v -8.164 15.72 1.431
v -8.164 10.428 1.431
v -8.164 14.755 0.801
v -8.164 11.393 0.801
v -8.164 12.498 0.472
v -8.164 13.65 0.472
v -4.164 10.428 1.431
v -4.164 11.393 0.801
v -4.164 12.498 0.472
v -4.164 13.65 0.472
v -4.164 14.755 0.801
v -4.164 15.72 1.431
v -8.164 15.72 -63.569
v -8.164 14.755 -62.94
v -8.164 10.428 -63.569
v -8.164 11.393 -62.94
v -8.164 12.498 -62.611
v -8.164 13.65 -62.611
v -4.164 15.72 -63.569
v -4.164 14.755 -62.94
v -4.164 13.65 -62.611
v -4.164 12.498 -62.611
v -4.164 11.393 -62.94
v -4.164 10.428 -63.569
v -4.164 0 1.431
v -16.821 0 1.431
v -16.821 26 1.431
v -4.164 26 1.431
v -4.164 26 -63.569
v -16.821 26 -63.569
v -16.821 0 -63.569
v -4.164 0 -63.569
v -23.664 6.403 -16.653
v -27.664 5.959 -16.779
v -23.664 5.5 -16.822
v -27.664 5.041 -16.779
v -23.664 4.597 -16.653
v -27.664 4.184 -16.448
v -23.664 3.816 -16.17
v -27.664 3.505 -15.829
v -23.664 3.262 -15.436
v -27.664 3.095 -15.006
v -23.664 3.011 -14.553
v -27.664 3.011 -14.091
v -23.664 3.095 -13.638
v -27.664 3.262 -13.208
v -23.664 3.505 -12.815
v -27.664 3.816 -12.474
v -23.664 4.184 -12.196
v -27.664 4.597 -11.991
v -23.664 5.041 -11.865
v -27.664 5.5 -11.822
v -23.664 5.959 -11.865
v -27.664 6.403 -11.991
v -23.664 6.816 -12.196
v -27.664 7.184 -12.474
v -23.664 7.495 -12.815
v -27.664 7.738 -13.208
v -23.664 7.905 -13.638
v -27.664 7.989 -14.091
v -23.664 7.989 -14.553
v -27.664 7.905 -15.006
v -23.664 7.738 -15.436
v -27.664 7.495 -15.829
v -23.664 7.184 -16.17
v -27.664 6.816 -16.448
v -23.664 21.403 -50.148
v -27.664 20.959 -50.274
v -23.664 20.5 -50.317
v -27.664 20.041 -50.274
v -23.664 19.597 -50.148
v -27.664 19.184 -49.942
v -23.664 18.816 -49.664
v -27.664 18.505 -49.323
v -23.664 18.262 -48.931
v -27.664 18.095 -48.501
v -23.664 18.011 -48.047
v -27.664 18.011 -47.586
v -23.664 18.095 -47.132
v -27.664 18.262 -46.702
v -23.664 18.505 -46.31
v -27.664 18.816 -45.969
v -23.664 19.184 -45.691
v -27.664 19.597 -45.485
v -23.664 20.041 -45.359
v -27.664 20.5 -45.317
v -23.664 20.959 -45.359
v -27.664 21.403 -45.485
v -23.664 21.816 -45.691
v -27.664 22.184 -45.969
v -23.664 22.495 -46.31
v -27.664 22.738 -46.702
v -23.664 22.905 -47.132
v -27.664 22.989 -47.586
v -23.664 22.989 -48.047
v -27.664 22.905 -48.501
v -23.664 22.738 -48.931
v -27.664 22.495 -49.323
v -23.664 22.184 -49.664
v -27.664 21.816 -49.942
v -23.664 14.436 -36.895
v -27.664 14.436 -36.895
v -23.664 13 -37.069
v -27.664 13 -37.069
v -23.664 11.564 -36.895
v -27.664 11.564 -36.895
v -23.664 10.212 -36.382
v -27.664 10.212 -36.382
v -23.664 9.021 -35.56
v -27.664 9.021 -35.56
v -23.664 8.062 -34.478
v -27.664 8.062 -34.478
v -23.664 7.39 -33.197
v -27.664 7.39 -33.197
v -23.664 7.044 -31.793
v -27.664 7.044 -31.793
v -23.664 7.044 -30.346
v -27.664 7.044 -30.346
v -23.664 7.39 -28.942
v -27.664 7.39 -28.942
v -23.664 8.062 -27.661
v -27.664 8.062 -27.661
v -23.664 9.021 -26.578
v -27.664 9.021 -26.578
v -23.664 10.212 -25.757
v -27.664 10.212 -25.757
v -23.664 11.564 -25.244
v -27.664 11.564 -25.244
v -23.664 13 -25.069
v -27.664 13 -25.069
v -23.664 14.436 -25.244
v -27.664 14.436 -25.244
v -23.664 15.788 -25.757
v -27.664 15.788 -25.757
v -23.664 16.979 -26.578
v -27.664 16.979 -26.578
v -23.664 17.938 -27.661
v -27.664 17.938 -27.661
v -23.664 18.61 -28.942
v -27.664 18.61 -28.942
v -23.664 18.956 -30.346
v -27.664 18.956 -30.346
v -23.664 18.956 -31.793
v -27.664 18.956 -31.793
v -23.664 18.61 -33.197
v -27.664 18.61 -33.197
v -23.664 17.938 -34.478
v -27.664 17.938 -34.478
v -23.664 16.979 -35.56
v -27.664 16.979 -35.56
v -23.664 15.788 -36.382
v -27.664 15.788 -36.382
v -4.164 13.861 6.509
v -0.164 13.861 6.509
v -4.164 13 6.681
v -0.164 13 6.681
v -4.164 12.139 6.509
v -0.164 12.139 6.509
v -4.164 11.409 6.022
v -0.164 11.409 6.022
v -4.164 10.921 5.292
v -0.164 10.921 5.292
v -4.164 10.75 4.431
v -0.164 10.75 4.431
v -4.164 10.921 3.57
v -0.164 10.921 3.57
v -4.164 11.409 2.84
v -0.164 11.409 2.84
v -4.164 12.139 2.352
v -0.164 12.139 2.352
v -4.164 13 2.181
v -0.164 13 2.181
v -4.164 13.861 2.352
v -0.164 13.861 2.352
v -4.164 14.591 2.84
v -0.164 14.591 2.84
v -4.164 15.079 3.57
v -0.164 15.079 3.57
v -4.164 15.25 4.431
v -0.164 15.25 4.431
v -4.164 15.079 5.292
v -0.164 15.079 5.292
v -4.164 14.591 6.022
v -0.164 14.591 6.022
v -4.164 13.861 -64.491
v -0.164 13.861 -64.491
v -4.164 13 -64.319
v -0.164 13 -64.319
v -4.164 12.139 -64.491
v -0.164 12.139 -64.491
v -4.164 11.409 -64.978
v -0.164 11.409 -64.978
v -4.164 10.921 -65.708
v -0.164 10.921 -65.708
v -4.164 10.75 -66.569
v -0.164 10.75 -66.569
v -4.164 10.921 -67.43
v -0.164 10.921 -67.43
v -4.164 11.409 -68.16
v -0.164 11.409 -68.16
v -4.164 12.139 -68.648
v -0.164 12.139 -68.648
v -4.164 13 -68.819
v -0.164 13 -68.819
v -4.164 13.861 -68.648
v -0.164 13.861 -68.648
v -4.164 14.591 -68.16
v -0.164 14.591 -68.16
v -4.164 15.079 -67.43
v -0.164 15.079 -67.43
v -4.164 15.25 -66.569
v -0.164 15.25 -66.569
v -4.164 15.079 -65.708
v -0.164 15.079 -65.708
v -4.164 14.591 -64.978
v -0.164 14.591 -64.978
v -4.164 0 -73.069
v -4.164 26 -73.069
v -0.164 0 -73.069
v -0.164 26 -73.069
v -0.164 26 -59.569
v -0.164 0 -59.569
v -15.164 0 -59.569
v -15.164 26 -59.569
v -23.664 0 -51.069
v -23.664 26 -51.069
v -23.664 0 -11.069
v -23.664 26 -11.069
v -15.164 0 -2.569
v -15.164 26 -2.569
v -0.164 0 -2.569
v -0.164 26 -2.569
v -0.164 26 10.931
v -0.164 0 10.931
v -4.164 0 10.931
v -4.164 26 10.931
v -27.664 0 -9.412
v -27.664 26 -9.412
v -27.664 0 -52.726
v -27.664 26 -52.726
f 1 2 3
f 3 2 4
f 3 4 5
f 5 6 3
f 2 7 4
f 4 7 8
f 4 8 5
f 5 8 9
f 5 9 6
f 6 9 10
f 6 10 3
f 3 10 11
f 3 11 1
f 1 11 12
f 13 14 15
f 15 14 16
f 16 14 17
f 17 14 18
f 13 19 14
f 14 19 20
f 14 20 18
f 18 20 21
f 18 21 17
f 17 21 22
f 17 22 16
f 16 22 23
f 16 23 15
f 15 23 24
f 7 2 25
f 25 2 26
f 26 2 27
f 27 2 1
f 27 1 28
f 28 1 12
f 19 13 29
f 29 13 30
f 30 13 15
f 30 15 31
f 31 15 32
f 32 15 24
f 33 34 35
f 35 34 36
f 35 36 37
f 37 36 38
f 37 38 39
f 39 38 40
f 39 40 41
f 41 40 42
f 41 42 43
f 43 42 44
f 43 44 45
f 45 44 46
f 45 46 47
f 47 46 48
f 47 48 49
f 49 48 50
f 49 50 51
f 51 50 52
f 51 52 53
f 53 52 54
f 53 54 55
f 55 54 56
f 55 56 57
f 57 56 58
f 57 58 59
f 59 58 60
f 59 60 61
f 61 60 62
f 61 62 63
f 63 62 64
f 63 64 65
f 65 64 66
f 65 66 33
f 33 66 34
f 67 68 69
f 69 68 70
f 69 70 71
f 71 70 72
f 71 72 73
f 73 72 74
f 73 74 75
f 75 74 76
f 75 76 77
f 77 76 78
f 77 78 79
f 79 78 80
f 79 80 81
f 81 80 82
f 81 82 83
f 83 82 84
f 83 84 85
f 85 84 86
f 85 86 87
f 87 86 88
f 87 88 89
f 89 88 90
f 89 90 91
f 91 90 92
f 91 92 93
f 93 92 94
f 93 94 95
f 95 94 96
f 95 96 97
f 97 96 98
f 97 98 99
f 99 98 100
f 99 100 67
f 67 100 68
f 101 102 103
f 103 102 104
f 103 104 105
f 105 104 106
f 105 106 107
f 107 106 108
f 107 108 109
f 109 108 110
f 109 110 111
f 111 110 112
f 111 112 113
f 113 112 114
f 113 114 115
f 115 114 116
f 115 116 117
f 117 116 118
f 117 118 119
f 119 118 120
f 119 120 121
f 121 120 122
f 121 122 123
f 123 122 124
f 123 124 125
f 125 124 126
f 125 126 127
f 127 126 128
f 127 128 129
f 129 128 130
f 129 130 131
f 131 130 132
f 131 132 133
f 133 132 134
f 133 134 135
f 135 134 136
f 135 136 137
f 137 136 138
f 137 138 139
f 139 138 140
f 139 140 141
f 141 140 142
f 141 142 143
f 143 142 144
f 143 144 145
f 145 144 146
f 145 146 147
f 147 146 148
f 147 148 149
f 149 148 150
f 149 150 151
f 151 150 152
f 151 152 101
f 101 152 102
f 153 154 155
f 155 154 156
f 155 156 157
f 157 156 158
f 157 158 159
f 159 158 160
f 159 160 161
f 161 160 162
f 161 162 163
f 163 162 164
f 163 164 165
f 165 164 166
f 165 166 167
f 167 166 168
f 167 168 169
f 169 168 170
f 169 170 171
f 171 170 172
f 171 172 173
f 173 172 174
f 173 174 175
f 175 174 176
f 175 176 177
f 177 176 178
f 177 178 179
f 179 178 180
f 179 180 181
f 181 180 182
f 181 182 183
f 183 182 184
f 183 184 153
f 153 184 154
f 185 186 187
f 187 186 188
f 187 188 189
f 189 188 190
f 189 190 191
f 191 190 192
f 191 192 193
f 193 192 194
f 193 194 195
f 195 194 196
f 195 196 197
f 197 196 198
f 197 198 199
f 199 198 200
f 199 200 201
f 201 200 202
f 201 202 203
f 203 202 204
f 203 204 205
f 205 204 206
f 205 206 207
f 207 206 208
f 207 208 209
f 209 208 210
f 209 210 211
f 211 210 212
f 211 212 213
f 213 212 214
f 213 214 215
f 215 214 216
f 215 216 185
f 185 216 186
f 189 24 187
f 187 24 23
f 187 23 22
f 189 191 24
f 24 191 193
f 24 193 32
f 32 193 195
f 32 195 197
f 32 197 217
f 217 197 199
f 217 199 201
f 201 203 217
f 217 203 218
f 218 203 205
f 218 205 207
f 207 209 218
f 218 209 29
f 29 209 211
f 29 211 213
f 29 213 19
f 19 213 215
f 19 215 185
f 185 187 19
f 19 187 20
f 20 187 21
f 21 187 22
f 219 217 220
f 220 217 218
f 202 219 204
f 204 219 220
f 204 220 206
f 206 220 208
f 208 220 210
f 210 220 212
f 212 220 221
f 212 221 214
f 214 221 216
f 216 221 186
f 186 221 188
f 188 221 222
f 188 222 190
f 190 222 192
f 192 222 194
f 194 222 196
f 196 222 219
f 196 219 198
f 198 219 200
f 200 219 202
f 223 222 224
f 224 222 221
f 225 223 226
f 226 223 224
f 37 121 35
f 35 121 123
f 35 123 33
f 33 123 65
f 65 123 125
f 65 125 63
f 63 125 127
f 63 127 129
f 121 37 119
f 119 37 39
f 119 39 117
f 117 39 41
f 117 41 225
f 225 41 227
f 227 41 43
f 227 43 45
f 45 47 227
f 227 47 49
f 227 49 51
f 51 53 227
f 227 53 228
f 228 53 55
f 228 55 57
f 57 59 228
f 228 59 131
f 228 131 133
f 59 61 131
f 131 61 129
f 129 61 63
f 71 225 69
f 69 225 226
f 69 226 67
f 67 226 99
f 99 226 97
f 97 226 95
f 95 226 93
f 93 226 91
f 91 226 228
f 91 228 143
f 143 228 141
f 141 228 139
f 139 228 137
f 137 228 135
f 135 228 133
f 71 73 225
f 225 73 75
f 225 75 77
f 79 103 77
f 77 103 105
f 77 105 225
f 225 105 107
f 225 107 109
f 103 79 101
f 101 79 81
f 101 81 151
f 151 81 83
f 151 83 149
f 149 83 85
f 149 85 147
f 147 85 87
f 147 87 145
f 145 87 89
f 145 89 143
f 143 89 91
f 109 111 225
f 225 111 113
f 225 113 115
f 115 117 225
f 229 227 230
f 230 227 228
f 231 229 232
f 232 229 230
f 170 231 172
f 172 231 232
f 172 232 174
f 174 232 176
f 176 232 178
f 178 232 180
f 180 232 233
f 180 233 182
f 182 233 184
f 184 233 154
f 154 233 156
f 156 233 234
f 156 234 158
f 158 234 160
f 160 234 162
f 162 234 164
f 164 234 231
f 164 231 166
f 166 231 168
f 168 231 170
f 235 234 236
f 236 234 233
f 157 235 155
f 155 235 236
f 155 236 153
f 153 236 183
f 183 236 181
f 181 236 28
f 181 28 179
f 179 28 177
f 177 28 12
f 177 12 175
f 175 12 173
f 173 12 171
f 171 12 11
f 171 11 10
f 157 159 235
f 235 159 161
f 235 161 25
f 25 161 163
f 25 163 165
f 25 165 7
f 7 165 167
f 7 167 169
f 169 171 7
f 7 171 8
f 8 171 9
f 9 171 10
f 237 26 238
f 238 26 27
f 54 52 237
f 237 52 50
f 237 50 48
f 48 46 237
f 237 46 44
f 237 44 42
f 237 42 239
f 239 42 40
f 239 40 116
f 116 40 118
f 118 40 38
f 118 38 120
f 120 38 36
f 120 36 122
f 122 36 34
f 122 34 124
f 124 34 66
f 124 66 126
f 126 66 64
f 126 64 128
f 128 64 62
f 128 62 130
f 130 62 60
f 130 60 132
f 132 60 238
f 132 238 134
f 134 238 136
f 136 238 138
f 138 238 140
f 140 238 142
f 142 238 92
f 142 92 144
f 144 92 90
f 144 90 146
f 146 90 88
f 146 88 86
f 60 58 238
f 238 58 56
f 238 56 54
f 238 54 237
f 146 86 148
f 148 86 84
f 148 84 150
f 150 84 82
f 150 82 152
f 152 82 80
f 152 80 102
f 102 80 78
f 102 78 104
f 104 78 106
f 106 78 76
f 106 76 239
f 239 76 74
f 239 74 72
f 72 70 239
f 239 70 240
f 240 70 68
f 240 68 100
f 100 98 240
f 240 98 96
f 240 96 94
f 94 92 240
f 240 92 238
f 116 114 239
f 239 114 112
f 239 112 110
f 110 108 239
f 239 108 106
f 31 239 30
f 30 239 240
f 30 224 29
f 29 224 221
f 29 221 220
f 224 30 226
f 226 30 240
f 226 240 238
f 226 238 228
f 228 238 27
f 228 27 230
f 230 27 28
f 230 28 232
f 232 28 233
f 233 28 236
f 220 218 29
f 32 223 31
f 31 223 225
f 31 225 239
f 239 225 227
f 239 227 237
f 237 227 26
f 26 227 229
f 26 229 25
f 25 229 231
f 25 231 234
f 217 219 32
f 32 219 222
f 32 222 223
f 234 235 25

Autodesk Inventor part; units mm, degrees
ref_plane "YZ Plane" through (0, 0, 0) normal (1, 0, 0) x (0, 1, 0)
ref_plane "XZ Plane" through (0, 0, 0) normal (0, 1, 0) x (-1, 0, 0)
ref_plane "XY Plane" through (0, 0, 0) normal (0, 0, 1) x (1, 0, 0)
sketch "Sketch1" plane through (0, 0, 0) normal (0, 1, 0) x (-1, 0, 0)
  line L0 (0.1637, 10.9307) -> (0.1637, -2.5693)
  line L1 (0.1637, -59.5693) -> (0.1637, -73.0693)
  line L2 (0.1637, -2.5693) -> (15.1637, -2.5693)
  line L3 (0.1637, -59.5693) -> (15.1637, -59.5693)
  line L4 (15.1637, -2.5693) -> (23.6637, -11.0693)
  line L5 (15.1637, -59.5693) -> (23.6637, -51.0693)
  line L6 (23.6637, -11.0693) -> (23.6637, -51.0693)
  line L7 (4.1637, -73.0693) -> (4.1637, -63.5693)
  line L8 (4.1637, -63.5693) -> (16.8205, -63.5693)
  line L9 (16.8205, -63.5693) -> (27.6637, -52.7262)
  line L10 (27.6637, -52.7262) -> (27.6637, -9.4125)
  line L11 (27.6637, -9.4125) -> (16.8205, 1.4307)
  line L12 (16.8205, 1.4307) -> (4.1637, 1.4307)
  line L13 (4.1637, 1.4307) -> (4.1637, 10.9307)
  line L14 (4.1637, 10.9307) -> (0.1637, 10.9307)
  line L15 (4.1637, -73.0693) -> (0.1637, -73.0693)
  point P0 (0, 0)
  point P1 (0.1637, 4.1807)
  dimension "d5" = 13.5
  dimension "d6" = 13.5
  dimension "d98" = 0
  dimension "d100" = 15
  dimension "d101" = 15
  dimension "d103" = 135
  dimension "d104" = 135
  dimension "d106" = 23.5
  dimension "d107" = 4
  dimension "d111" = 84
extrude "Extrusion1" add sketch "Sketch1" along normal blind 26
sketch "Sketch2" plane through (-0.1637, 0, 10.9307) normal (1, 0, 0) x (0, 0, -1)
  circle A0 centre (6.5, 13) radius 2.25
  line L0 (0, 0) -> (0, 26) projected
  line L1 (0, 0) -> (13.5, 0) projected
  circle A1 centre (77.5, 13) radius 2.25
  point P0 (10.9307, 0)
  dimension "d23" = 4.5
  dimension "d29" = 6.5
  dimension "d30" = 13
  dimension "d93" = 71
extrude "Extrusion2" cut sketch "Sketch2" against normal blind 10
sketch "Sketch7" plane through (-27.6637, 0, -52.7262) normal (-1, 0, 0) x (0, 0, 1)
  circle A0 centre (21.6569, 13) radius 6
  line L0 (63.6569, 0) -> (63.6569, 26) projected
  line L1 (0, 0) -> (43.3137, 0) projected
  point P0 (52.7262, 0)
  point P1 (21.6569, 0)
  dimension "d108" = 12
  dimension "d109" = 42
  dimension "d110" = 13
extrude "Extrusion7" cut sketch "Sketch7" against normal blind 10
sketch "Sketch8" plane through (-27.6637, 0, -52.7262) normal (-1, 0, 0) x (0, 0, 1)
  circle A0 centre (21.6569, 13) radius 6 projected
  circle A1 centre (21.6569, 13) radius 18.35
  circle A2 centre (38.4042, 5.5) radius 2.5
  line L0 (0, 0) -> (43.3137, 0) projected
  circle A3 centre (4.9095, 20.5) radius 2.5
  point P0 (52.7262, 0)
  dimension "d114" = 36.7
  dimension "d115" = 5
  dimension "d116" = 5.5
  dimension "d119" = 360
extrude "Extrusion8" cut sketch "Sketch8" against normal blind 10 contours A3 A1 | A1 A3 | A2 A1 | A1 A2
sketch "Sketch9" plane through (-4.1637, 0, 1.4307) normal (-1, 0, 0) x (0, 0, 1)
  circle A0 centre (3, 13.0738) radius 4
  circle A1 centre (-68, 13.0738) radius 4
  point P0 (-1.4307, 0)
  dimension "d123" = 8
  dimension "d124" = 8
extrude "Extrusion9" cut sketch "Sketch9" along normal blind 4
equation "\"d5\" = d6"
equation "\"d29\" = -0.5 * d33 + 0.5 * d17"
equation "\"d30\" = 0.5 * d20"
equation "\"d33\" = 71"
equation "\"d17\" = 84"
equation "\"d20\" = 26"
properties part number "Pulley Bearing Support.-3"
